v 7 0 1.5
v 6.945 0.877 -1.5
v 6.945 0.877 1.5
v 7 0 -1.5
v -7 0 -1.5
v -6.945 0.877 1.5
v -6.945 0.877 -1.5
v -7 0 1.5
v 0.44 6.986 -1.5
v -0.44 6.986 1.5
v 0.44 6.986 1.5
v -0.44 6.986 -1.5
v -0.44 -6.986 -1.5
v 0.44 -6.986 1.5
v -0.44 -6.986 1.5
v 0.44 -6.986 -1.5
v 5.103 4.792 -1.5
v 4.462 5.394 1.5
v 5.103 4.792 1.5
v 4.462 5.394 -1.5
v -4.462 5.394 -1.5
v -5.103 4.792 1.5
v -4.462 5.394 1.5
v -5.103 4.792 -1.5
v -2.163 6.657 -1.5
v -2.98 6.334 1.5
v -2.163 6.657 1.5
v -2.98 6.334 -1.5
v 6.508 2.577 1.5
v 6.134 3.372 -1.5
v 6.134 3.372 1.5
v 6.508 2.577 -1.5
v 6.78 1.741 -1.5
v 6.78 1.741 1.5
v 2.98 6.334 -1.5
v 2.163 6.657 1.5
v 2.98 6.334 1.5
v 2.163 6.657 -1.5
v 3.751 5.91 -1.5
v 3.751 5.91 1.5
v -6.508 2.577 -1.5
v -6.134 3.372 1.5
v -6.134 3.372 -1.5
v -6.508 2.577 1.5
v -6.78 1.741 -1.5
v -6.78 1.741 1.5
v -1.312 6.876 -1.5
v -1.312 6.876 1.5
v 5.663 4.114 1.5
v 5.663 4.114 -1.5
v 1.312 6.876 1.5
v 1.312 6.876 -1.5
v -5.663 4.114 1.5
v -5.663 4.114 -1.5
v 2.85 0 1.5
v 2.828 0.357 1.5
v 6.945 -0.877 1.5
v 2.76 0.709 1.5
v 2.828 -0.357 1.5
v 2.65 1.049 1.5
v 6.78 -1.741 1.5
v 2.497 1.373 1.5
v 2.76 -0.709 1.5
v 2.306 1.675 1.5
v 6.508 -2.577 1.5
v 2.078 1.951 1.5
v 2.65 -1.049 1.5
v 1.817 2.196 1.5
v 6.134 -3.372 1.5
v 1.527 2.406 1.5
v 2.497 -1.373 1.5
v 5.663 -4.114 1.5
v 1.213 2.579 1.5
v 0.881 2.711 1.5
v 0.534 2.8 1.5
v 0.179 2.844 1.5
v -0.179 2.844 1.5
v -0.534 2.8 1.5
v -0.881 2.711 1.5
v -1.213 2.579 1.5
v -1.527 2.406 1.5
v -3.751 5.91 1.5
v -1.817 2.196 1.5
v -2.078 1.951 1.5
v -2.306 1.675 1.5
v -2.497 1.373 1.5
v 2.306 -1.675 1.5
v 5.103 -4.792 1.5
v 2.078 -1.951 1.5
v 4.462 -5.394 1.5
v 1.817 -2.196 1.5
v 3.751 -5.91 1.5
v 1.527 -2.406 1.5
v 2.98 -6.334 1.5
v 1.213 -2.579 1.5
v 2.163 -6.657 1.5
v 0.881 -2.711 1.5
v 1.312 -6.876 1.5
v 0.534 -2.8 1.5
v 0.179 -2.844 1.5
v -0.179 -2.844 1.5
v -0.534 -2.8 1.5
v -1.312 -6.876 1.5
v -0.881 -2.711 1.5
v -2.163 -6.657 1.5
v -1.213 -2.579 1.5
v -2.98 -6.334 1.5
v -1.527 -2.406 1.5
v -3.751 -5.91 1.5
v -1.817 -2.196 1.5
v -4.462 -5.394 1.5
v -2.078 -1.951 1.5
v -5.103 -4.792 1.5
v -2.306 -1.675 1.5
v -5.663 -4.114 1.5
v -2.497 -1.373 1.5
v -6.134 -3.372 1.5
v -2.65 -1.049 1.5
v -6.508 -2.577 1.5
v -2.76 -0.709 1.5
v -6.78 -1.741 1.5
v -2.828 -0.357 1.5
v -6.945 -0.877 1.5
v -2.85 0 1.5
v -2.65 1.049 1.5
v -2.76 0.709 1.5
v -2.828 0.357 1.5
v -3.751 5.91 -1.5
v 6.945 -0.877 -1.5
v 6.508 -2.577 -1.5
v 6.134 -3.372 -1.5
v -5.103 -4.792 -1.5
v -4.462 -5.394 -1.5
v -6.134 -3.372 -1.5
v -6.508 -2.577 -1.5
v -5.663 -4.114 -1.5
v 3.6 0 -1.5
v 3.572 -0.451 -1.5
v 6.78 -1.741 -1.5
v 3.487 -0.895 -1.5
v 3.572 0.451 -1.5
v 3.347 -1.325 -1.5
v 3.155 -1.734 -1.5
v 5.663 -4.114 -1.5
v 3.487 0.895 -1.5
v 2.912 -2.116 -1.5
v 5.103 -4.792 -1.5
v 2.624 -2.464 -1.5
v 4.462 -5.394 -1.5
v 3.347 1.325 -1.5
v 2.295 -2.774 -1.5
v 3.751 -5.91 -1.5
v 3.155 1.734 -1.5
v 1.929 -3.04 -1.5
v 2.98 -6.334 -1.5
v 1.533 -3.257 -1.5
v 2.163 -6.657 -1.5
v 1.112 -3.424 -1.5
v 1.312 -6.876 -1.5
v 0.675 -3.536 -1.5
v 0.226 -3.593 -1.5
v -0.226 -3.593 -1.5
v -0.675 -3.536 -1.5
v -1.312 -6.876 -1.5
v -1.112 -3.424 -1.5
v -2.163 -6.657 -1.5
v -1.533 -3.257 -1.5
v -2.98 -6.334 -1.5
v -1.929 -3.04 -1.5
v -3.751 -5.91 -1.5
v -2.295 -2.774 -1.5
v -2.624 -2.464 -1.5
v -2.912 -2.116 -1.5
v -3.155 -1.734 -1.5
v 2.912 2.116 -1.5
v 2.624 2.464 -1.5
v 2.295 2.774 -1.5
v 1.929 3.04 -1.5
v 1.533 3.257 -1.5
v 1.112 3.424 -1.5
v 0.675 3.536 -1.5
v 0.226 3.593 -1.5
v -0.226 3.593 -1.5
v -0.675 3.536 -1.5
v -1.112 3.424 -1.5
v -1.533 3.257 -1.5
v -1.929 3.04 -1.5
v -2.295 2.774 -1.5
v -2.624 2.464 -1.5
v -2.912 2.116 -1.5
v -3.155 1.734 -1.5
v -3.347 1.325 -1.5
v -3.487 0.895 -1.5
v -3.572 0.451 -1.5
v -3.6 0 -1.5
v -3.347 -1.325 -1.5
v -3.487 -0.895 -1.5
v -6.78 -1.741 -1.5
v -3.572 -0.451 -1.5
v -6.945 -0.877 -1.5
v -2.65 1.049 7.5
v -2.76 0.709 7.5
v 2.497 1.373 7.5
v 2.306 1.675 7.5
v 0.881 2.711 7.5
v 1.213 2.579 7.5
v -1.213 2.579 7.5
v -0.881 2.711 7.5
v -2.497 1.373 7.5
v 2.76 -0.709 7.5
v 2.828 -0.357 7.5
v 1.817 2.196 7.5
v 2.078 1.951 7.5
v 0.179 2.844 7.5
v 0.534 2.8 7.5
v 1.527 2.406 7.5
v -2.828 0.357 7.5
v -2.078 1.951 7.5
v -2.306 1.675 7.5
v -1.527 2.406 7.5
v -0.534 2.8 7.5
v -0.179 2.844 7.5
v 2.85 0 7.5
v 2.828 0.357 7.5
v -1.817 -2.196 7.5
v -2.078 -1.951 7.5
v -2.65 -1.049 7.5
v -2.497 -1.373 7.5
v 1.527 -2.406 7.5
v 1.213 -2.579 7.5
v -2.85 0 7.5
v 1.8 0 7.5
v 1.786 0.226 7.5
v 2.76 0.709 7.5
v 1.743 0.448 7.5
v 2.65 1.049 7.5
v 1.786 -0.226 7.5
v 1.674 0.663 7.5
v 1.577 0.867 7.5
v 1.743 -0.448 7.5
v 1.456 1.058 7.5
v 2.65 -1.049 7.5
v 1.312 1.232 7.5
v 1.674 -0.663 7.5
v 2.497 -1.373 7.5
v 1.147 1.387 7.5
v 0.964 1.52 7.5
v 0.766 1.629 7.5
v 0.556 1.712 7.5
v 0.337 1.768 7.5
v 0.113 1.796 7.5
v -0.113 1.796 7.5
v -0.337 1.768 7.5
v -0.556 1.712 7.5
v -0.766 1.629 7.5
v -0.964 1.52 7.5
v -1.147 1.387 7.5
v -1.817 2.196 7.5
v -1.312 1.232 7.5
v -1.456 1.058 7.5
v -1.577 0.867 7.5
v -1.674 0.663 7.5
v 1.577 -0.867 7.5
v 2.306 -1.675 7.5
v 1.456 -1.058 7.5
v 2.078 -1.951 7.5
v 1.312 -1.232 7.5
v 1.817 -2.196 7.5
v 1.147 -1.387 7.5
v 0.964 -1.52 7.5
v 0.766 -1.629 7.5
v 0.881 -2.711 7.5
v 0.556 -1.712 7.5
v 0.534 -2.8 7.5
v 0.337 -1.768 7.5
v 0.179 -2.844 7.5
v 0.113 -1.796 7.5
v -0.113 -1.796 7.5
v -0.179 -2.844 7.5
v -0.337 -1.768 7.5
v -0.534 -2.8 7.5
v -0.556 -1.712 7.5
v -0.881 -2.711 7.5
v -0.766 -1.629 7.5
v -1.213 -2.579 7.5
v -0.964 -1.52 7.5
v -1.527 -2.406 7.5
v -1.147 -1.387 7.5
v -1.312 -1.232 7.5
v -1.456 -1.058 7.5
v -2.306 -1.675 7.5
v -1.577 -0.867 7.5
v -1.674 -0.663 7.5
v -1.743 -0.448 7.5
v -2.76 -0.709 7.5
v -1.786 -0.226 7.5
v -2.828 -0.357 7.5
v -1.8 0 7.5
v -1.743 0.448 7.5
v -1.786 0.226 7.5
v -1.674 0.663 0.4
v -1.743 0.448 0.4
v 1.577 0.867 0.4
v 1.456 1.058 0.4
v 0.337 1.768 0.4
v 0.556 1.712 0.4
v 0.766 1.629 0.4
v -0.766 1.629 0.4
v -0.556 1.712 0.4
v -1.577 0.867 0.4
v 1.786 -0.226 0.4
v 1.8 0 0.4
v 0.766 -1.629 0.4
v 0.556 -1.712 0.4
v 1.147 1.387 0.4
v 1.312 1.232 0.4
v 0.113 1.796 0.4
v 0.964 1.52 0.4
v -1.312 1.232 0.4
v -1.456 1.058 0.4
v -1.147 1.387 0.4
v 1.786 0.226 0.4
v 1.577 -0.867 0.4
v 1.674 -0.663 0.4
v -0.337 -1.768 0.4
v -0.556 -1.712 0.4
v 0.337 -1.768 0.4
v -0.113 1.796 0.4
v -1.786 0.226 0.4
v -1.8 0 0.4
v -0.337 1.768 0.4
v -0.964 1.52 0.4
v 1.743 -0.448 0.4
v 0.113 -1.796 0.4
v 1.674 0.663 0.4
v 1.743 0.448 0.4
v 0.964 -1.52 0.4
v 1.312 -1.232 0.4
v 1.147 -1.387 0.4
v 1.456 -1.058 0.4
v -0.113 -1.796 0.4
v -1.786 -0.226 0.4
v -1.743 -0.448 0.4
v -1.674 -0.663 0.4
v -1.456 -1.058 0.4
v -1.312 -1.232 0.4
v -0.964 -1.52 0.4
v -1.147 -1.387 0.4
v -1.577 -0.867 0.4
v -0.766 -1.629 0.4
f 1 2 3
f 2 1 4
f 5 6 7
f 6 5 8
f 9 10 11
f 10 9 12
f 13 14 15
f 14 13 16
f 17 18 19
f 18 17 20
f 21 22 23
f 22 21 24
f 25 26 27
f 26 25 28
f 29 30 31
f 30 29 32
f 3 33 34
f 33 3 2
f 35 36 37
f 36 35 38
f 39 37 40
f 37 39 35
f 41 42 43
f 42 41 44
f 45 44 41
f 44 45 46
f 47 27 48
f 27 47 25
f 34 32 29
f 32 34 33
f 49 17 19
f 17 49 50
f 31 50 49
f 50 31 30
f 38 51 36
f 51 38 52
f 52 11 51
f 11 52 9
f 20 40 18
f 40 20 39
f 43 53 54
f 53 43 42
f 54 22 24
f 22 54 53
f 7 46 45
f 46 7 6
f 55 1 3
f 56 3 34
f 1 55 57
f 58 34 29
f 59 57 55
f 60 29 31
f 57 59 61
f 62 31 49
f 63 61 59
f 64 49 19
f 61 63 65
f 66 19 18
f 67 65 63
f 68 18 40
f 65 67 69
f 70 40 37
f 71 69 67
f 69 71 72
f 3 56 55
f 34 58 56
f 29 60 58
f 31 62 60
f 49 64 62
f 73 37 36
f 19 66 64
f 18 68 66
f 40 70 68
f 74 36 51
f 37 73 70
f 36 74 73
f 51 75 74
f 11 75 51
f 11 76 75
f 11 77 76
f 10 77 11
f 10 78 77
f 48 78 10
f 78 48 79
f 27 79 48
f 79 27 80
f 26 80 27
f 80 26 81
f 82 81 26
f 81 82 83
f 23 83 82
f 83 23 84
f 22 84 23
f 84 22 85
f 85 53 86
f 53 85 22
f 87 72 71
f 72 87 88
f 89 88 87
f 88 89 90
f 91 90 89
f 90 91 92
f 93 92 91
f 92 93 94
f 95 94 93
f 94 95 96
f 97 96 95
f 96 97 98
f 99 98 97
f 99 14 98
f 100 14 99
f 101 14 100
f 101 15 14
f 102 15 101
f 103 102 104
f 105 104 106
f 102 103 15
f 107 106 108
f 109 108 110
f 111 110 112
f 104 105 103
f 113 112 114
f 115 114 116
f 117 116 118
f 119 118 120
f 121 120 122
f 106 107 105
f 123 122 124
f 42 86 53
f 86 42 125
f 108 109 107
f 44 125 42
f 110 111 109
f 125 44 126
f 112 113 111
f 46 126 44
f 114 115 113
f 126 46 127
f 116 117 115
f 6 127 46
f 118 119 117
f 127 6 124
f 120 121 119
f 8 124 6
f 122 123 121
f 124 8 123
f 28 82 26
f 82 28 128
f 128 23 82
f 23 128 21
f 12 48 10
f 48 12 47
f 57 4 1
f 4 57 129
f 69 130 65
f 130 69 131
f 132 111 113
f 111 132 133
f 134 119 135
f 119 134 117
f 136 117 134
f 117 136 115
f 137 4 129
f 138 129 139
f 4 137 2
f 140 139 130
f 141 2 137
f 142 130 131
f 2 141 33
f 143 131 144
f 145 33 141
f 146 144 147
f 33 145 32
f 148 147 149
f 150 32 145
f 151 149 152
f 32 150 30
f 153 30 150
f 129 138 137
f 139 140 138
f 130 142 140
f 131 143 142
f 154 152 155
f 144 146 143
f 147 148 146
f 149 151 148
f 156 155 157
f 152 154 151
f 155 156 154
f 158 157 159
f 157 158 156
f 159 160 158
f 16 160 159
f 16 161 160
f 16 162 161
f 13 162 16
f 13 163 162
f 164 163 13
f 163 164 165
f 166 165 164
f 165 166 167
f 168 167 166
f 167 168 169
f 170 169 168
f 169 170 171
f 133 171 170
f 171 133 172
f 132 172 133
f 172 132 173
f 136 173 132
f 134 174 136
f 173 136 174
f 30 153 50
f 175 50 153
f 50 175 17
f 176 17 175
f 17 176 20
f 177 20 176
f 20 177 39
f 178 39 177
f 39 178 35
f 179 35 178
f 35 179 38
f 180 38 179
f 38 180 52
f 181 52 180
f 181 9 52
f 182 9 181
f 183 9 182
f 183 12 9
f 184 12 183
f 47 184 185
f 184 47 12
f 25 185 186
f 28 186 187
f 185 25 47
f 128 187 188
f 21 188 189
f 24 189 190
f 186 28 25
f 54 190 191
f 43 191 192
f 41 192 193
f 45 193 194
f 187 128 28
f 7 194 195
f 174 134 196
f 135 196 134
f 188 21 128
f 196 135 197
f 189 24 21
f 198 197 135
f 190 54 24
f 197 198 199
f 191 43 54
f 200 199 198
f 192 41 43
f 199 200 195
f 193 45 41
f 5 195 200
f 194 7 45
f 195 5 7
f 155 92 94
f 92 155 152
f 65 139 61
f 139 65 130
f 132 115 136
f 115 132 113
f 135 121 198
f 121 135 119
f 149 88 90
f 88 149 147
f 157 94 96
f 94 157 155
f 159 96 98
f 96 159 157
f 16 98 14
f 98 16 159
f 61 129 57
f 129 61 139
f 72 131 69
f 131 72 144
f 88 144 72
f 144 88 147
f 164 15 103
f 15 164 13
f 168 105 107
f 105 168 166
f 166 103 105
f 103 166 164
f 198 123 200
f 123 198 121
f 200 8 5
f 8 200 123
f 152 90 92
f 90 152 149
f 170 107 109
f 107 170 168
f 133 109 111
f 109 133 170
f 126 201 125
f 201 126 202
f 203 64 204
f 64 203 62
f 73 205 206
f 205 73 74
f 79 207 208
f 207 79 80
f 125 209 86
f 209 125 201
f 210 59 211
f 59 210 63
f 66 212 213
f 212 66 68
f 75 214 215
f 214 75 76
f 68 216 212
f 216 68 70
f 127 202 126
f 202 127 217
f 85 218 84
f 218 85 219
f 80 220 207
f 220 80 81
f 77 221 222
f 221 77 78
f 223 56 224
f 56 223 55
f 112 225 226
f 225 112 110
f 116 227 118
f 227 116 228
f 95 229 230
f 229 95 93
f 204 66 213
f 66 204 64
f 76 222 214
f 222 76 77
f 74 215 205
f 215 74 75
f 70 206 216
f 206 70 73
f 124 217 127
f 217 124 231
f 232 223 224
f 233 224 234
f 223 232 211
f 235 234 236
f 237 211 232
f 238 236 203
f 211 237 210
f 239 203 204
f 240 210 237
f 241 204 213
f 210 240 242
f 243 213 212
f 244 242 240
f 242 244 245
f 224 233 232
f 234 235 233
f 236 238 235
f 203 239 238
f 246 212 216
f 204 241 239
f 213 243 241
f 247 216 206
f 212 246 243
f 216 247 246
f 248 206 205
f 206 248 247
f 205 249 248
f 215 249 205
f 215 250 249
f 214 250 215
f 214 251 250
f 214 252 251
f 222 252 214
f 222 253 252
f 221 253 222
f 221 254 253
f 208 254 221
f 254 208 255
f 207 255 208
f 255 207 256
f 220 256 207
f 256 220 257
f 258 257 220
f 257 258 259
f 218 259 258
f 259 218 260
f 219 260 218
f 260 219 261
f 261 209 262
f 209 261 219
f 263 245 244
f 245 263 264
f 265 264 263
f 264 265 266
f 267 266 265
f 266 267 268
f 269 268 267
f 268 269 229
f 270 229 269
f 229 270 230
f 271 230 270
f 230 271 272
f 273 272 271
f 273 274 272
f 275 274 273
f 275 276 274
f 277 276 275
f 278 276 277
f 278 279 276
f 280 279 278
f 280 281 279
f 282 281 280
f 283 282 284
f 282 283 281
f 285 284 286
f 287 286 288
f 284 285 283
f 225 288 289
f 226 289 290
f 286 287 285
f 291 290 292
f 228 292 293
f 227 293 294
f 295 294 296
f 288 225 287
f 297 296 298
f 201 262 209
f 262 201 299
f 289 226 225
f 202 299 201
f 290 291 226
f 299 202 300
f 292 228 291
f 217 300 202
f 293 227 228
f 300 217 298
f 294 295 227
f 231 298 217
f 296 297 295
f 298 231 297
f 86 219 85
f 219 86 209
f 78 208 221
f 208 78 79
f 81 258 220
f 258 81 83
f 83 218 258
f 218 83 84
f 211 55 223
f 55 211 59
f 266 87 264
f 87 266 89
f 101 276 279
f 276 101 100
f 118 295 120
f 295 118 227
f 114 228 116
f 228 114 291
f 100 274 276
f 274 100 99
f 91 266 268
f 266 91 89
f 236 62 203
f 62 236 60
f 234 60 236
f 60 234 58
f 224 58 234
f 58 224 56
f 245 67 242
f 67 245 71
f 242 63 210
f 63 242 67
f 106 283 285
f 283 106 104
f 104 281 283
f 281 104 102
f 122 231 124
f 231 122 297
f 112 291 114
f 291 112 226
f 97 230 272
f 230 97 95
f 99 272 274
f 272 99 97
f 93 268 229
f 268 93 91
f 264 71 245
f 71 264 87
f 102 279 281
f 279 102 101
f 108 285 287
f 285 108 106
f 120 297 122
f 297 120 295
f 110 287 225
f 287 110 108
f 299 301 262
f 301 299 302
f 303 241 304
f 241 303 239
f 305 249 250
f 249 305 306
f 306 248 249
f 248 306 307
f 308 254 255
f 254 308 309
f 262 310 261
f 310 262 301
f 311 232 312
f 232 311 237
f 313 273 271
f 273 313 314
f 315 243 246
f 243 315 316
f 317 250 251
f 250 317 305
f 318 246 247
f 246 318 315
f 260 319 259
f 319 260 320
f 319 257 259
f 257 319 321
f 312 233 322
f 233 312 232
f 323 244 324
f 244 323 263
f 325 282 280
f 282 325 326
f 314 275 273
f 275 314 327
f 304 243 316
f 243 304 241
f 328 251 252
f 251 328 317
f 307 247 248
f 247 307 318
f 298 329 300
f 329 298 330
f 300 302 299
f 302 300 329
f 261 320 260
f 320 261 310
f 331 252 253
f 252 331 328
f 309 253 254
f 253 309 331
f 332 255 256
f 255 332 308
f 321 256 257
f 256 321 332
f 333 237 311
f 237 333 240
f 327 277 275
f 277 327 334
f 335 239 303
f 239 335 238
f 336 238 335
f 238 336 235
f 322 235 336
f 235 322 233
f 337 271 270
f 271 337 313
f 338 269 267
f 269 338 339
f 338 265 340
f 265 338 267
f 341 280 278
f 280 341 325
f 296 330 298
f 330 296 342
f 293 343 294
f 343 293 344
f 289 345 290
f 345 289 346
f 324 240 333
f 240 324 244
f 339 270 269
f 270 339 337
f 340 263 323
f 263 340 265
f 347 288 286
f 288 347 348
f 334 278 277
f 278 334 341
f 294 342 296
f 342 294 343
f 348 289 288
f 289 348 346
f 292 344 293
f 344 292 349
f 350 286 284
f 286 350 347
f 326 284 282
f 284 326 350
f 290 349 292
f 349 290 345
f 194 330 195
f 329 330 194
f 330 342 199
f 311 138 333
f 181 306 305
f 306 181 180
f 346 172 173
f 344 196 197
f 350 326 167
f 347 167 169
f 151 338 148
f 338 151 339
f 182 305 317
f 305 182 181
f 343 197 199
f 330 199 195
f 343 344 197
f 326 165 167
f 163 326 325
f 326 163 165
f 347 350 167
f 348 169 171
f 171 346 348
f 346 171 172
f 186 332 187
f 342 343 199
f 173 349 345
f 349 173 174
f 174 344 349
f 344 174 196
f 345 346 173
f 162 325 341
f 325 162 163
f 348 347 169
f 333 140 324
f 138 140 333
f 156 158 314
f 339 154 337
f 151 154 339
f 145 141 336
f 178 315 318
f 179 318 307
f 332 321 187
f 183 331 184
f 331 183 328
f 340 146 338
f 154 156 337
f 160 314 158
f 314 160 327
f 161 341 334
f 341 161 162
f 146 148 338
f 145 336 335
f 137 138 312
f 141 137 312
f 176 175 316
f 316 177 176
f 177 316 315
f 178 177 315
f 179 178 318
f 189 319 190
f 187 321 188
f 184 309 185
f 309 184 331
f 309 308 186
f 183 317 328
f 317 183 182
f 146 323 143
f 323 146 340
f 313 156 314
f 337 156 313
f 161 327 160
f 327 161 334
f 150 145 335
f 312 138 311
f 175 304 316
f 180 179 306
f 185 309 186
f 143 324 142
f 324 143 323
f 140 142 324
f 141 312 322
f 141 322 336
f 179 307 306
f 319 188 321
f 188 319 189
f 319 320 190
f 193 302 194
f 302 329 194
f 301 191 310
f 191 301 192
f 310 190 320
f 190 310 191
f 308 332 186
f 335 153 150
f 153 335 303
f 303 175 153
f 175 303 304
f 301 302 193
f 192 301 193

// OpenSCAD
$fn = 50;


difference() {
	union() {
		translate(v = [0, 0, -1.5000000000]) {
			rotate(a = [0, 0, 0]) {
				cylinder(h = 3, r = 7.0000000000);
			}
		}
		translate(v = [0, 0, -1.5000000000]) {
			rotate(a = [0, 0, 0]) {
				cylinder(h = 9, r = 2.8500000000);
			}
		}
	}
	union() {
		translate(v = [0, 0, -125.0000000000]) {
			rotate(a = [0, 0, 0]) {
				cylinder(h = 250, r = 1.8000000000);
			}
		}
		#translate(v = [0, 0, 0.4000000000]) {
			rotate(a = [0, 180, 0]) {
				cylinder(h = 1.9000000000, r1 = 1.8000000000, r2 = 3.6000000000);
			}
		}
		#translate(v = [0, 0, 7.5000000000]) {
			rotate(a = [0, 180, 0]) {
				cylinder(h = 9, r = 1.8000000000);
			}
		}
	}
}
